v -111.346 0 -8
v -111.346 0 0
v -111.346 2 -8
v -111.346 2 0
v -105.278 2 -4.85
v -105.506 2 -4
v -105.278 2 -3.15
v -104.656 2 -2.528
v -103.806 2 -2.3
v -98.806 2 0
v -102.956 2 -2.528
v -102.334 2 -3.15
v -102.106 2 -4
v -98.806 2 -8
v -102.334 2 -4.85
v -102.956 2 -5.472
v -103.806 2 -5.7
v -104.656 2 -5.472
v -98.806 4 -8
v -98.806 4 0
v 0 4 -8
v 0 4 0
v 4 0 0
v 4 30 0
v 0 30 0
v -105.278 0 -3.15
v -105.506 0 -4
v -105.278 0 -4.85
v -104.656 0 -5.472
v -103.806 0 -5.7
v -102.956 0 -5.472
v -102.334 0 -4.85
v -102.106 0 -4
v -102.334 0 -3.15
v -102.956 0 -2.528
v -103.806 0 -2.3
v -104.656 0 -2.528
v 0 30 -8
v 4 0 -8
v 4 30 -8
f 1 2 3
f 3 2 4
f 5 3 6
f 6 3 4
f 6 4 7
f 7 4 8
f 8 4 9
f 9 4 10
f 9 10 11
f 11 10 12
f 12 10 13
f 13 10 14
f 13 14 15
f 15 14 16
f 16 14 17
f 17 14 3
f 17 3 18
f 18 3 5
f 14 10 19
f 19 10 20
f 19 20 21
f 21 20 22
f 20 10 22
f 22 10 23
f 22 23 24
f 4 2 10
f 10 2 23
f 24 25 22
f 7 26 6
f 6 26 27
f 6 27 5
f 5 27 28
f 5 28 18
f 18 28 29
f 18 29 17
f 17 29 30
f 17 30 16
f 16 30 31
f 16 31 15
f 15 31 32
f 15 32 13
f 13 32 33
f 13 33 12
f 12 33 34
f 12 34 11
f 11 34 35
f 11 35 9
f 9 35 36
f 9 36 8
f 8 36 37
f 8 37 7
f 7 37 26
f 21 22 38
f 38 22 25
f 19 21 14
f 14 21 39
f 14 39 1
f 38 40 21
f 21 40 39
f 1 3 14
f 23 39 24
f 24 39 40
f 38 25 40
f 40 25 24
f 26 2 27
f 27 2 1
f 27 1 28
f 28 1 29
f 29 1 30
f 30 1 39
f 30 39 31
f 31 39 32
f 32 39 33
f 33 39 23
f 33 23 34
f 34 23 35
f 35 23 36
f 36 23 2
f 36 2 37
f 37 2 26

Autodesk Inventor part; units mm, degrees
ref_plane "YZ Plane" through (0, 0, 0) normal (1, 0, 0) x (0, 1, 0)
ref_plane "XZ Plane" through (0, 0, 0) normal (0, 1, 0) x (-1, 0, 0)
ref_plane "XY Plane" through (0, 0, 0) normal (0, 0, 1) x (1, 0, 0)
sketch "Sketch1" plane through (0, 0, 0) normal (0, 1, 0) x (-1, 0, 0)
  line L0 (0, 0) -> (98.806, 0)
  line L1 (98.806, 0) -> (98.806, -8)
  line L2 (98.806, -8) -> (0, -8)
  line L3 (0, -8) -> (0, 0)
  line L4 (0, -8) -> (-4, -8)
  line L5 (-4, -8) -> (-4, 0)
  line L6 (-4, 0) -> (0, 0)
  line L7 (0, 0) -> (0, -8)
  line L8 (98.806, 0) -> (108.806, 0)
  line L9 (108.806, 0) -> (108.806, -8)
  line L10 (108.806, -8) -> (98.806, -8)
  point P0 (0, 0)
  dimension "d0" = 98.806
  dimension "d1" = 8
  dimension "d2" = 4
  dimension "d3" = 8
  dimension "d4" = 10
extrude "Extrusion1" add sketch "Sketch1" along normal blind 30 contours L3 L4 L5 L6
extrude "Extrusion2" add sketch "Sketch1" along normal blind 4 contours L0 L1 L2 L3 | L8 L9 L10 L1
sketch "Sketch2" plane through (0, 4, 0) normal (0, 1, 0) x (1, 0, 0)
  line L0 (-108.806, 8) -> (-108.806, 0) projected
  line L1 (-108.806, 4) -> (-103.806, 4)
  point P0 (0, 0)
  dimension "d9" = 5
hole "Hole1" at (-103.806, 4, -4) direction (0, -1, 0) diameter 3.4 end through all clearance for "Flat Head Machine Screw" size "M3" standard "Ansi Metric M Profile"
sketch "Sketch3" plane through (-108.806, 0, -8) normal (-1, 0, 0) x (0, 0, 1)
  line L0 (0, 4) -> (8, 4) projected
  line L1 (0, 4) -> (8, 4)
  line L2 (8, 4) -> (8, 2)
  line L3 (8, 2) -> (0, 2)
  line L4 (0, 2) -> (0, 4)
  point P0 (8, 0)
  point P1 (8, 4)
  dimension "d17" = 8
  dimension "d18" = 2
extrude "Extrusion3" cut sketch "Sketch3" against normal blind 10
sketch "Sketch4" plane through (-108.806, 0, -8) normal (-1, 0, 0) x (0, 0, 1)
  line L0 (8, 2) -> (0, 2) projected
  line L1 (0, 0) -> (0, 2) projected
  line L2 (0, 0) -> (8, 0) projected
  line L3 (8, 0) -> (8, 2) projected
extrude "Extrusion4" add sketch "Sketch4" along normal blind 2.54
properties part number "brace2"
